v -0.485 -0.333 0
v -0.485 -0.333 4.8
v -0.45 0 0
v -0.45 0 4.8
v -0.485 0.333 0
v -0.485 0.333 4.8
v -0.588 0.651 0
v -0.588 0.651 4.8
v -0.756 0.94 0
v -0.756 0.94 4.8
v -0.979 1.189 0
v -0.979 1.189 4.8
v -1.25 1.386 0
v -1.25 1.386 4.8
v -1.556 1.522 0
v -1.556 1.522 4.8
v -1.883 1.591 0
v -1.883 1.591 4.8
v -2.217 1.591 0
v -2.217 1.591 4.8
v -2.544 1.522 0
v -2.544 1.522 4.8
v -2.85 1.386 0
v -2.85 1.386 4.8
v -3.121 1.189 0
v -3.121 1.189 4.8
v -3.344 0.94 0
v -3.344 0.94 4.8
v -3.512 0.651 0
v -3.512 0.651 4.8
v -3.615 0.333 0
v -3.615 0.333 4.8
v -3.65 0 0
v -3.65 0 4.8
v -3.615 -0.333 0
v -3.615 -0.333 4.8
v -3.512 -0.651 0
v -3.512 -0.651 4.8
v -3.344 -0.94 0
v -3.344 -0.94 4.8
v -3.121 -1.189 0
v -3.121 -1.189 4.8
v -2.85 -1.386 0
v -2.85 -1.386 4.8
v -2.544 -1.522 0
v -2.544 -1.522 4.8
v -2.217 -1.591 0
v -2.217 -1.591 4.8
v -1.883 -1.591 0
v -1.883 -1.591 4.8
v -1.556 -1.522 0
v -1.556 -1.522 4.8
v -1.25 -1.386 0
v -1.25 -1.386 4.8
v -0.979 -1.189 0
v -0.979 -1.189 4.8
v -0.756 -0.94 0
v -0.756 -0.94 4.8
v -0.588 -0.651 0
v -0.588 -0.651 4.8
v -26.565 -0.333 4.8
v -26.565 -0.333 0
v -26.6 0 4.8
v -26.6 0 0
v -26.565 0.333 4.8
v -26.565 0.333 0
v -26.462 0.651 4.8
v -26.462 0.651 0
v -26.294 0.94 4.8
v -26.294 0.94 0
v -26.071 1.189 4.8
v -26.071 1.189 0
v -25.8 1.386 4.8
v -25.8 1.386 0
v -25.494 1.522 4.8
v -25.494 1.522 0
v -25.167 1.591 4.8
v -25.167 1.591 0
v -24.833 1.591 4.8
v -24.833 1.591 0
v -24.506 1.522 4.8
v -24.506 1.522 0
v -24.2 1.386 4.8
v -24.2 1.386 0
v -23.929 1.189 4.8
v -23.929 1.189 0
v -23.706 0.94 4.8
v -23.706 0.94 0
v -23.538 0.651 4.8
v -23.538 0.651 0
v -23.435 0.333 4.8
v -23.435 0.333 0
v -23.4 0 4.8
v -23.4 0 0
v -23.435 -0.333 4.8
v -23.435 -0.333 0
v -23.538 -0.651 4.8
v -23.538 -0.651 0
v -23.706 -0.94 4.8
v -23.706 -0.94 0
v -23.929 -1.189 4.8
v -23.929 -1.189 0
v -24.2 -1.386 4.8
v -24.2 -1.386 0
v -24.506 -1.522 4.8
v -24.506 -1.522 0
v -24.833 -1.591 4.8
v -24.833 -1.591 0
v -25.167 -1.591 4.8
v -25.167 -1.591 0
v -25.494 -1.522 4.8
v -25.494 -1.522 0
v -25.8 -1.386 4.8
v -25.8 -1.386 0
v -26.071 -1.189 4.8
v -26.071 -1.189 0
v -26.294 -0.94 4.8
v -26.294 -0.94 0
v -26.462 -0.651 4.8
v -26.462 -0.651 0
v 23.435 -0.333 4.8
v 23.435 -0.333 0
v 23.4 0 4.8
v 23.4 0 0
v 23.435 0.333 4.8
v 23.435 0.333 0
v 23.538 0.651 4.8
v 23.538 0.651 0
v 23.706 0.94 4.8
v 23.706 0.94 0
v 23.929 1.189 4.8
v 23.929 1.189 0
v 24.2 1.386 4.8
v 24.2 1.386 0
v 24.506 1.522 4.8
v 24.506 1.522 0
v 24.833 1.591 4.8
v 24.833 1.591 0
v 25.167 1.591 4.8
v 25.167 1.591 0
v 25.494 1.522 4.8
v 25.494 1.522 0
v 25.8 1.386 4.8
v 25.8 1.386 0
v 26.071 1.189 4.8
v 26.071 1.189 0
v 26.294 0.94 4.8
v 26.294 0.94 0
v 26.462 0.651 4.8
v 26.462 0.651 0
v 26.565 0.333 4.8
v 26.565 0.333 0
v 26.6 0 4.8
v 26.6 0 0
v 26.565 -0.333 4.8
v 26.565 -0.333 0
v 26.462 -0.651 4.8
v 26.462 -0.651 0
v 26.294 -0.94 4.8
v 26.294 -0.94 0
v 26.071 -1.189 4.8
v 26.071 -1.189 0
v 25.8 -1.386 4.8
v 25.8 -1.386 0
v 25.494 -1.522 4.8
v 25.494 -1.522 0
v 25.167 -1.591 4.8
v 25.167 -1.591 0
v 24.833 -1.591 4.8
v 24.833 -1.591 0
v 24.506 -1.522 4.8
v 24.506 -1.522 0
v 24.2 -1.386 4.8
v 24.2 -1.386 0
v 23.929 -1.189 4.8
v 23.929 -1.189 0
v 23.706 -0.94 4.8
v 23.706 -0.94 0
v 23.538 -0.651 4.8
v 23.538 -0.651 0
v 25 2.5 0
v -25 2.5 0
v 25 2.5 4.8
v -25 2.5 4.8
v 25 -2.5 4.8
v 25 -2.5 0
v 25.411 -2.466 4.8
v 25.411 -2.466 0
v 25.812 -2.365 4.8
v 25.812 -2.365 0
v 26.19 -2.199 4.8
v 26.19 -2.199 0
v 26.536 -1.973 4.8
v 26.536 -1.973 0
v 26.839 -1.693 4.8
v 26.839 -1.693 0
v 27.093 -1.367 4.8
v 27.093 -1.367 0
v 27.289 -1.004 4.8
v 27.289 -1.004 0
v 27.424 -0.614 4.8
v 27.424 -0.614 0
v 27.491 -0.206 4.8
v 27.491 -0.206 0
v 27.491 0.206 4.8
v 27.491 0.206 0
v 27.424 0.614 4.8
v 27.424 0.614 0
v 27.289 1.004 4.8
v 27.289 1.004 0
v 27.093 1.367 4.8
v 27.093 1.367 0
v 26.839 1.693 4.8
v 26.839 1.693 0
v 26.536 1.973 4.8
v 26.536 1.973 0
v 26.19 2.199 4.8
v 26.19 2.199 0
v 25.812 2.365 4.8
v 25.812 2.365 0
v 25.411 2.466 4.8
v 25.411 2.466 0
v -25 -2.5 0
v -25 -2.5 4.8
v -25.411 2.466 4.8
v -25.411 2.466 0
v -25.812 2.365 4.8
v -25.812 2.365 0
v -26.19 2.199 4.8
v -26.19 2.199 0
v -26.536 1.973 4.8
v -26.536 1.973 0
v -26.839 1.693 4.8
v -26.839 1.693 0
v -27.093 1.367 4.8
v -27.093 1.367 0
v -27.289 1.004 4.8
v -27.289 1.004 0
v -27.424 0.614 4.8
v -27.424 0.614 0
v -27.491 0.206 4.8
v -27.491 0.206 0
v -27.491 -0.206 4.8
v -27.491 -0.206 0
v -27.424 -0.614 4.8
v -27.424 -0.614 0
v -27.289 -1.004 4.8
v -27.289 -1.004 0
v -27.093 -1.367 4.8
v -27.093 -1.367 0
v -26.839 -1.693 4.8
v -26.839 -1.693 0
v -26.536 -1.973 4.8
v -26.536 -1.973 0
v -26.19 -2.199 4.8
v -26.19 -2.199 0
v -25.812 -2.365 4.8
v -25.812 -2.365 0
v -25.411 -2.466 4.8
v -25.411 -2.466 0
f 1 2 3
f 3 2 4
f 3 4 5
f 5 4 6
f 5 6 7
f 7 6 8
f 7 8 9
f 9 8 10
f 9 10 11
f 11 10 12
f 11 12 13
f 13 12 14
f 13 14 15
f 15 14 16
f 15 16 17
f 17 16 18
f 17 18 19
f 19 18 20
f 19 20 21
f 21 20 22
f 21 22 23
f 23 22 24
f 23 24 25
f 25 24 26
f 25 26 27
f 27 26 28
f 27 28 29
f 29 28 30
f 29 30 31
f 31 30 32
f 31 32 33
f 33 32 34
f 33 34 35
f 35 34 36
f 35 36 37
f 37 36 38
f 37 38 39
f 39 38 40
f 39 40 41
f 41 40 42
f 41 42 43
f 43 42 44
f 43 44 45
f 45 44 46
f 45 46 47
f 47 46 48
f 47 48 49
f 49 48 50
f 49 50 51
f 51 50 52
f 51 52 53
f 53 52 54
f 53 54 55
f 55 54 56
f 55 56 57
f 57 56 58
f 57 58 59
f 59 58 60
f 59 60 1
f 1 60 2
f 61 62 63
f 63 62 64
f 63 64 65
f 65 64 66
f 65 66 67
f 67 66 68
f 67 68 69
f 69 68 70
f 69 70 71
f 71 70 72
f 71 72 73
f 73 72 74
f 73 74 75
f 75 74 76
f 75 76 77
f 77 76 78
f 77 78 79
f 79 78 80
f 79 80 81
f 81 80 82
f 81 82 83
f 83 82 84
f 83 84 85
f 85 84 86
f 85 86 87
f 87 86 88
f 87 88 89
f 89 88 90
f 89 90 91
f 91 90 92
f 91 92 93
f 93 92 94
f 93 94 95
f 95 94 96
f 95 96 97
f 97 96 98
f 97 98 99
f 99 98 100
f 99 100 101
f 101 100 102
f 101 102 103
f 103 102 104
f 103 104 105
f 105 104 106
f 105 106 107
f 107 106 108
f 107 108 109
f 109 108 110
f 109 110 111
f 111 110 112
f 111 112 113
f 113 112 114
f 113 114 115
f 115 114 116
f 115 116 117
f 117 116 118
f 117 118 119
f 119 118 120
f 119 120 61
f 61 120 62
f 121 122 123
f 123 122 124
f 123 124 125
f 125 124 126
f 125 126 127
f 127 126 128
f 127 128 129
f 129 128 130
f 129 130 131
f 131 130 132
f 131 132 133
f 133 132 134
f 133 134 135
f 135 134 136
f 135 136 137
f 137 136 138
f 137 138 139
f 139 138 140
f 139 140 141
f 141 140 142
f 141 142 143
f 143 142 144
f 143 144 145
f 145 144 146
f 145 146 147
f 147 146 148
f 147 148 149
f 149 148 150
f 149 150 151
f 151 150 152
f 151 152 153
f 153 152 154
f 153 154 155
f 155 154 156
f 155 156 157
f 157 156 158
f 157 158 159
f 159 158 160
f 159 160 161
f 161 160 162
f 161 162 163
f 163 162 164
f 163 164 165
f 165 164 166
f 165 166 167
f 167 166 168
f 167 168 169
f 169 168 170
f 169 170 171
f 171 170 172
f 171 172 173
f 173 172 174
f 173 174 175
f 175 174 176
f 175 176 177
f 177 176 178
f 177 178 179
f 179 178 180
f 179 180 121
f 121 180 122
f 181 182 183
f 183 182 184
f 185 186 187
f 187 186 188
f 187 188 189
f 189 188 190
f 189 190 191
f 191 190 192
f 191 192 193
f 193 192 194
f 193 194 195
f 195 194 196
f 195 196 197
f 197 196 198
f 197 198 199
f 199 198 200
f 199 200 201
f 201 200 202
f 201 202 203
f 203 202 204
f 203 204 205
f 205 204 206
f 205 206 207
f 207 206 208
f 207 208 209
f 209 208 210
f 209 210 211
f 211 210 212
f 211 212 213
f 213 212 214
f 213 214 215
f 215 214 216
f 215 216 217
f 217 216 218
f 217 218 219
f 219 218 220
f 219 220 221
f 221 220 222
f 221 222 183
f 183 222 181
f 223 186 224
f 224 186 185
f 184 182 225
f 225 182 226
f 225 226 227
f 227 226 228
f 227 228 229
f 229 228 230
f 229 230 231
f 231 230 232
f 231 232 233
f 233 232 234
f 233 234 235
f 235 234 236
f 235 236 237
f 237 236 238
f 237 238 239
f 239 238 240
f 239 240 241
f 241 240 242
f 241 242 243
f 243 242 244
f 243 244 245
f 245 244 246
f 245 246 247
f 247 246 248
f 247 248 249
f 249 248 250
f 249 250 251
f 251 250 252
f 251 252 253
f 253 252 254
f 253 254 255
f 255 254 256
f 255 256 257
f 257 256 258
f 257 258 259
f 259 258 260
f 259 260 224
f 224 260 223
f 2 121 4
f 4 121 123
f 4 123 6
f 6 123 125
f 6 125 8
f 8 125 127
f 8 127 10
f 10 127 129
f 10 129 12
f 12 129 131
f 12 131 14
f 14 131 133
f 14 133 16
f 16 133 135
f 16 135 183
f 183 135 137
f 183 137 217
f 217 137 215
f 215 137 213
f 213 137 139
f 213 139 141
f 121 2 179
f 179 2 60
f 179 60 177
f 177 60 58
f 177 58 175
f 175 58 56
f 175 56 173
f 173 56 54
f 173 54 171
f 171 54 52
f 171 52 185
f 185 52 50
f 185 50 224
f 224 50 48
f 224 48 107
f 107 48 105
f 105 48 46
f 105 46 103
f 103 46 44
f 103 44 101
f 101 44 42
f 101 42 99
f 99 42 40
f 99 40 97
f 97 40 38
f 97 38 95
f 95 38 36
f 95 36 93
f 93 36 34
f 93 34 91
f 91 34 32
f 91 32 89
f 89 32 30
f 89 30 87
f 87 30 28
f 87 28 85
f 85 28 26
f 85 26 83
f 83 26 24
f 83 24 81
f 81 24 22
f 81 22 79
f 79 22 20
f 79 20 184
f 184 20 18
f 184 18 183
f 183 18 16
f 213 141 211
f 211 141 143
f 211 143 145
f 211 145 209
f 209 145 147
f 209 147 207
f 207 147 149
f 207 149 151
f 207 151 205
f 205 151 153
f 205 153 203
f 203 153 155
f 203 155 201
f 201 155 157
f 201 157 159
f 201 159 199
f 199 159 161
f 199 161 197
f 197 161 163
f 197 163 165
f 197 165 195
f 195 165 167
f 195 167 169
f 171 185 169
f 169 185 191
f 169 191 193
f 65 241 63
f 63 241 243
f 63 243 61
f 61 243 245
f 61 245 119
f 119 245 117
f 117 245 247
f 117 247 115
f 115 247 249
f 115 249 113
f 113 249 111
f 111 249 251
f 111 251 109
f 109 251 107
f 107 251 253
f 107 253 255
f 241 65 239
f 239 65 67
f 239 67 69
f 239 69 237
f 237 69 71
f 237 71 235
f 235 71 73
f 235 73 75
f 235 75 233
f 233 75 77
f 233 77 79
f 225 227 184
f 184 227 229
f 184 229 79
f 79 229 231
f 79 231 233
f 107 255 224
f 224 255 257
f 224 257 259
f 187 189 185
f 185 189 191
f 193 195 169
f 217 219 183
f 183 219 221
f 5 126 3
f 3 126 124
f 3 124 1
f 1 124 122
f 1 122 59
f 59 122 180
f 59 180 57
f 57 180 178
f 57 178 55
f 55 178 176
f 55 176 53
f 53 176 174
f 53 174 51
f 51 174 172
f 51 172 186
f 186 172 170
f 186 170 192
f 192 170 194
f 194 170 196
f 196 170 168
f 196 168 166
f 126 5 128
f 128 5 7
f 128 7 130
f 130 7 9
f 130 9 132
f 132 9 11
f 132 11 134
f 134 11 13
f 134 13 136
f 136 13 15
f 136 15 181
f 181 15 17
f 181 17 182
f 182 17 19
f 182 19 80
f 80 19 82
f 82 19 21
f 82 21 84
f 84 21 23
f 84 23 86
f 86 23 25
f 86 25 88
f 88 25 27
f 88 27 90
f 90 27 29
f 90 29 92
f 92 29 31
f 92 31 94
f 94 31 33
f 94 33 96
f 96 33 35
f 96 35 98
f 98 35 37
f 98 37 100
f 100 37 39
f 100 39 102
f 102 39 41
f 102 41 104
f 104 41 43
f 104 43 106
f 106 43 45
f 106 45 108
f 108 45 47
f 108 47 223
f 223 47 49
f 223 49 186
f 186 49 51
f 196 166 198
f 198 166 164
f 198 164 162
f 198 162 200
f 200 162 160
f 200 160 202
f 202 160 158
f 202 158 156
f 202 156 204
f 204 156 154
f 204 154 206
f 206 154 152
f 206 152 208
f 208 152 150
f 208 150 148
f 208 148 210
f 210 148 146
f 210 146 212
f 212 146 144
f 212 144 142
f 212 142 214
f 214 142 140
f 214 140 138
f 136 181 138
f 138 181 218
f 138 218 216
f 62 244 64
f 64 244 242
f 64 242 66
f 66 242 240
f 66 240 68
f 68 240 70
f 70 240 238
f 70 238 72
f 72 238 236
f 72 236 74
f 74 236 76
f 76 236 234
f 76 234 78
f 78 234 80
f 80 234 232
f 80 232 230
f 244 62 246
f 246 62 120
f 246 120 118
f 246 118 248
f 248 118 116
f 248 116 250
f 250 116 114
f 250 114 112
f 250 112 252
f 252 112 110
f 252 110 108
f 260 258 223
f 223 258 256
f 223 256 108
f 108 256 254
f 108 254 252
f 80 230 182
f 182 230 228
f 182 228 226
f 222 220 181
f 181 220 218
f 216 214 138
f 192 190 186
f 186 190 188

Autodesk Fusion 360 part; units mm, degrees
sketch "스케치1" plane through (0, 0, 0) normal (0, 0, 1) x (1, 0, 0)
  line L0 (-25, -2.5) -> (25, -2.5)
  arc A0 (25, -2.5) -> (25, 2.5) centre (25, 0) ccw
  line L1 (25, 2.5) -> (-25, 2.5)
  arc A1 (-25, 2.5) -> (-25, -2.5) centre (-25, 0) ccw
  line L2 (-25, 0) -> (25, 0) construction
  circle A2 centre (25, 0) radius 1.6
  circle A3 centre (-25, 0) radius 1.6
  dimension "d1" = 5
  dimension "d2" = 3.2
  dimension "d3" = 3.2
extrude "돌출1" add sketch "스케치1" along normal blind 4.8
sketch "스케치2" plane through (0, 0, 4.8) normal (0, 0, 1) x (-1, 0, 0)
  circle A0 centre (-25, 0) radius 1.6
  circle A1 centre (25, 0) radius 1.6
  arc A2 (25, -2.5) -> (25, 2.5) centre (25, 0) ccw
  line L0 (25, 2.5) -> (-25, 2.5)
  arc A3 (-25, 2.5) -> (-25, -2.5) centre (-25, 0) ccw
  line L1 (-25, -2.5) -> (25, -2.5)
  line L2 (2.05, -15) -> (2.05, 10)
  circle A4 centre (2.05, 0) radius 1.6
  dimension "d7" = 3.2
  dimension "d10" = 27.05
extrude "돌출2" cut sketch "스케치2" against normal blind 5 contours L2 A4 | L2 A4
